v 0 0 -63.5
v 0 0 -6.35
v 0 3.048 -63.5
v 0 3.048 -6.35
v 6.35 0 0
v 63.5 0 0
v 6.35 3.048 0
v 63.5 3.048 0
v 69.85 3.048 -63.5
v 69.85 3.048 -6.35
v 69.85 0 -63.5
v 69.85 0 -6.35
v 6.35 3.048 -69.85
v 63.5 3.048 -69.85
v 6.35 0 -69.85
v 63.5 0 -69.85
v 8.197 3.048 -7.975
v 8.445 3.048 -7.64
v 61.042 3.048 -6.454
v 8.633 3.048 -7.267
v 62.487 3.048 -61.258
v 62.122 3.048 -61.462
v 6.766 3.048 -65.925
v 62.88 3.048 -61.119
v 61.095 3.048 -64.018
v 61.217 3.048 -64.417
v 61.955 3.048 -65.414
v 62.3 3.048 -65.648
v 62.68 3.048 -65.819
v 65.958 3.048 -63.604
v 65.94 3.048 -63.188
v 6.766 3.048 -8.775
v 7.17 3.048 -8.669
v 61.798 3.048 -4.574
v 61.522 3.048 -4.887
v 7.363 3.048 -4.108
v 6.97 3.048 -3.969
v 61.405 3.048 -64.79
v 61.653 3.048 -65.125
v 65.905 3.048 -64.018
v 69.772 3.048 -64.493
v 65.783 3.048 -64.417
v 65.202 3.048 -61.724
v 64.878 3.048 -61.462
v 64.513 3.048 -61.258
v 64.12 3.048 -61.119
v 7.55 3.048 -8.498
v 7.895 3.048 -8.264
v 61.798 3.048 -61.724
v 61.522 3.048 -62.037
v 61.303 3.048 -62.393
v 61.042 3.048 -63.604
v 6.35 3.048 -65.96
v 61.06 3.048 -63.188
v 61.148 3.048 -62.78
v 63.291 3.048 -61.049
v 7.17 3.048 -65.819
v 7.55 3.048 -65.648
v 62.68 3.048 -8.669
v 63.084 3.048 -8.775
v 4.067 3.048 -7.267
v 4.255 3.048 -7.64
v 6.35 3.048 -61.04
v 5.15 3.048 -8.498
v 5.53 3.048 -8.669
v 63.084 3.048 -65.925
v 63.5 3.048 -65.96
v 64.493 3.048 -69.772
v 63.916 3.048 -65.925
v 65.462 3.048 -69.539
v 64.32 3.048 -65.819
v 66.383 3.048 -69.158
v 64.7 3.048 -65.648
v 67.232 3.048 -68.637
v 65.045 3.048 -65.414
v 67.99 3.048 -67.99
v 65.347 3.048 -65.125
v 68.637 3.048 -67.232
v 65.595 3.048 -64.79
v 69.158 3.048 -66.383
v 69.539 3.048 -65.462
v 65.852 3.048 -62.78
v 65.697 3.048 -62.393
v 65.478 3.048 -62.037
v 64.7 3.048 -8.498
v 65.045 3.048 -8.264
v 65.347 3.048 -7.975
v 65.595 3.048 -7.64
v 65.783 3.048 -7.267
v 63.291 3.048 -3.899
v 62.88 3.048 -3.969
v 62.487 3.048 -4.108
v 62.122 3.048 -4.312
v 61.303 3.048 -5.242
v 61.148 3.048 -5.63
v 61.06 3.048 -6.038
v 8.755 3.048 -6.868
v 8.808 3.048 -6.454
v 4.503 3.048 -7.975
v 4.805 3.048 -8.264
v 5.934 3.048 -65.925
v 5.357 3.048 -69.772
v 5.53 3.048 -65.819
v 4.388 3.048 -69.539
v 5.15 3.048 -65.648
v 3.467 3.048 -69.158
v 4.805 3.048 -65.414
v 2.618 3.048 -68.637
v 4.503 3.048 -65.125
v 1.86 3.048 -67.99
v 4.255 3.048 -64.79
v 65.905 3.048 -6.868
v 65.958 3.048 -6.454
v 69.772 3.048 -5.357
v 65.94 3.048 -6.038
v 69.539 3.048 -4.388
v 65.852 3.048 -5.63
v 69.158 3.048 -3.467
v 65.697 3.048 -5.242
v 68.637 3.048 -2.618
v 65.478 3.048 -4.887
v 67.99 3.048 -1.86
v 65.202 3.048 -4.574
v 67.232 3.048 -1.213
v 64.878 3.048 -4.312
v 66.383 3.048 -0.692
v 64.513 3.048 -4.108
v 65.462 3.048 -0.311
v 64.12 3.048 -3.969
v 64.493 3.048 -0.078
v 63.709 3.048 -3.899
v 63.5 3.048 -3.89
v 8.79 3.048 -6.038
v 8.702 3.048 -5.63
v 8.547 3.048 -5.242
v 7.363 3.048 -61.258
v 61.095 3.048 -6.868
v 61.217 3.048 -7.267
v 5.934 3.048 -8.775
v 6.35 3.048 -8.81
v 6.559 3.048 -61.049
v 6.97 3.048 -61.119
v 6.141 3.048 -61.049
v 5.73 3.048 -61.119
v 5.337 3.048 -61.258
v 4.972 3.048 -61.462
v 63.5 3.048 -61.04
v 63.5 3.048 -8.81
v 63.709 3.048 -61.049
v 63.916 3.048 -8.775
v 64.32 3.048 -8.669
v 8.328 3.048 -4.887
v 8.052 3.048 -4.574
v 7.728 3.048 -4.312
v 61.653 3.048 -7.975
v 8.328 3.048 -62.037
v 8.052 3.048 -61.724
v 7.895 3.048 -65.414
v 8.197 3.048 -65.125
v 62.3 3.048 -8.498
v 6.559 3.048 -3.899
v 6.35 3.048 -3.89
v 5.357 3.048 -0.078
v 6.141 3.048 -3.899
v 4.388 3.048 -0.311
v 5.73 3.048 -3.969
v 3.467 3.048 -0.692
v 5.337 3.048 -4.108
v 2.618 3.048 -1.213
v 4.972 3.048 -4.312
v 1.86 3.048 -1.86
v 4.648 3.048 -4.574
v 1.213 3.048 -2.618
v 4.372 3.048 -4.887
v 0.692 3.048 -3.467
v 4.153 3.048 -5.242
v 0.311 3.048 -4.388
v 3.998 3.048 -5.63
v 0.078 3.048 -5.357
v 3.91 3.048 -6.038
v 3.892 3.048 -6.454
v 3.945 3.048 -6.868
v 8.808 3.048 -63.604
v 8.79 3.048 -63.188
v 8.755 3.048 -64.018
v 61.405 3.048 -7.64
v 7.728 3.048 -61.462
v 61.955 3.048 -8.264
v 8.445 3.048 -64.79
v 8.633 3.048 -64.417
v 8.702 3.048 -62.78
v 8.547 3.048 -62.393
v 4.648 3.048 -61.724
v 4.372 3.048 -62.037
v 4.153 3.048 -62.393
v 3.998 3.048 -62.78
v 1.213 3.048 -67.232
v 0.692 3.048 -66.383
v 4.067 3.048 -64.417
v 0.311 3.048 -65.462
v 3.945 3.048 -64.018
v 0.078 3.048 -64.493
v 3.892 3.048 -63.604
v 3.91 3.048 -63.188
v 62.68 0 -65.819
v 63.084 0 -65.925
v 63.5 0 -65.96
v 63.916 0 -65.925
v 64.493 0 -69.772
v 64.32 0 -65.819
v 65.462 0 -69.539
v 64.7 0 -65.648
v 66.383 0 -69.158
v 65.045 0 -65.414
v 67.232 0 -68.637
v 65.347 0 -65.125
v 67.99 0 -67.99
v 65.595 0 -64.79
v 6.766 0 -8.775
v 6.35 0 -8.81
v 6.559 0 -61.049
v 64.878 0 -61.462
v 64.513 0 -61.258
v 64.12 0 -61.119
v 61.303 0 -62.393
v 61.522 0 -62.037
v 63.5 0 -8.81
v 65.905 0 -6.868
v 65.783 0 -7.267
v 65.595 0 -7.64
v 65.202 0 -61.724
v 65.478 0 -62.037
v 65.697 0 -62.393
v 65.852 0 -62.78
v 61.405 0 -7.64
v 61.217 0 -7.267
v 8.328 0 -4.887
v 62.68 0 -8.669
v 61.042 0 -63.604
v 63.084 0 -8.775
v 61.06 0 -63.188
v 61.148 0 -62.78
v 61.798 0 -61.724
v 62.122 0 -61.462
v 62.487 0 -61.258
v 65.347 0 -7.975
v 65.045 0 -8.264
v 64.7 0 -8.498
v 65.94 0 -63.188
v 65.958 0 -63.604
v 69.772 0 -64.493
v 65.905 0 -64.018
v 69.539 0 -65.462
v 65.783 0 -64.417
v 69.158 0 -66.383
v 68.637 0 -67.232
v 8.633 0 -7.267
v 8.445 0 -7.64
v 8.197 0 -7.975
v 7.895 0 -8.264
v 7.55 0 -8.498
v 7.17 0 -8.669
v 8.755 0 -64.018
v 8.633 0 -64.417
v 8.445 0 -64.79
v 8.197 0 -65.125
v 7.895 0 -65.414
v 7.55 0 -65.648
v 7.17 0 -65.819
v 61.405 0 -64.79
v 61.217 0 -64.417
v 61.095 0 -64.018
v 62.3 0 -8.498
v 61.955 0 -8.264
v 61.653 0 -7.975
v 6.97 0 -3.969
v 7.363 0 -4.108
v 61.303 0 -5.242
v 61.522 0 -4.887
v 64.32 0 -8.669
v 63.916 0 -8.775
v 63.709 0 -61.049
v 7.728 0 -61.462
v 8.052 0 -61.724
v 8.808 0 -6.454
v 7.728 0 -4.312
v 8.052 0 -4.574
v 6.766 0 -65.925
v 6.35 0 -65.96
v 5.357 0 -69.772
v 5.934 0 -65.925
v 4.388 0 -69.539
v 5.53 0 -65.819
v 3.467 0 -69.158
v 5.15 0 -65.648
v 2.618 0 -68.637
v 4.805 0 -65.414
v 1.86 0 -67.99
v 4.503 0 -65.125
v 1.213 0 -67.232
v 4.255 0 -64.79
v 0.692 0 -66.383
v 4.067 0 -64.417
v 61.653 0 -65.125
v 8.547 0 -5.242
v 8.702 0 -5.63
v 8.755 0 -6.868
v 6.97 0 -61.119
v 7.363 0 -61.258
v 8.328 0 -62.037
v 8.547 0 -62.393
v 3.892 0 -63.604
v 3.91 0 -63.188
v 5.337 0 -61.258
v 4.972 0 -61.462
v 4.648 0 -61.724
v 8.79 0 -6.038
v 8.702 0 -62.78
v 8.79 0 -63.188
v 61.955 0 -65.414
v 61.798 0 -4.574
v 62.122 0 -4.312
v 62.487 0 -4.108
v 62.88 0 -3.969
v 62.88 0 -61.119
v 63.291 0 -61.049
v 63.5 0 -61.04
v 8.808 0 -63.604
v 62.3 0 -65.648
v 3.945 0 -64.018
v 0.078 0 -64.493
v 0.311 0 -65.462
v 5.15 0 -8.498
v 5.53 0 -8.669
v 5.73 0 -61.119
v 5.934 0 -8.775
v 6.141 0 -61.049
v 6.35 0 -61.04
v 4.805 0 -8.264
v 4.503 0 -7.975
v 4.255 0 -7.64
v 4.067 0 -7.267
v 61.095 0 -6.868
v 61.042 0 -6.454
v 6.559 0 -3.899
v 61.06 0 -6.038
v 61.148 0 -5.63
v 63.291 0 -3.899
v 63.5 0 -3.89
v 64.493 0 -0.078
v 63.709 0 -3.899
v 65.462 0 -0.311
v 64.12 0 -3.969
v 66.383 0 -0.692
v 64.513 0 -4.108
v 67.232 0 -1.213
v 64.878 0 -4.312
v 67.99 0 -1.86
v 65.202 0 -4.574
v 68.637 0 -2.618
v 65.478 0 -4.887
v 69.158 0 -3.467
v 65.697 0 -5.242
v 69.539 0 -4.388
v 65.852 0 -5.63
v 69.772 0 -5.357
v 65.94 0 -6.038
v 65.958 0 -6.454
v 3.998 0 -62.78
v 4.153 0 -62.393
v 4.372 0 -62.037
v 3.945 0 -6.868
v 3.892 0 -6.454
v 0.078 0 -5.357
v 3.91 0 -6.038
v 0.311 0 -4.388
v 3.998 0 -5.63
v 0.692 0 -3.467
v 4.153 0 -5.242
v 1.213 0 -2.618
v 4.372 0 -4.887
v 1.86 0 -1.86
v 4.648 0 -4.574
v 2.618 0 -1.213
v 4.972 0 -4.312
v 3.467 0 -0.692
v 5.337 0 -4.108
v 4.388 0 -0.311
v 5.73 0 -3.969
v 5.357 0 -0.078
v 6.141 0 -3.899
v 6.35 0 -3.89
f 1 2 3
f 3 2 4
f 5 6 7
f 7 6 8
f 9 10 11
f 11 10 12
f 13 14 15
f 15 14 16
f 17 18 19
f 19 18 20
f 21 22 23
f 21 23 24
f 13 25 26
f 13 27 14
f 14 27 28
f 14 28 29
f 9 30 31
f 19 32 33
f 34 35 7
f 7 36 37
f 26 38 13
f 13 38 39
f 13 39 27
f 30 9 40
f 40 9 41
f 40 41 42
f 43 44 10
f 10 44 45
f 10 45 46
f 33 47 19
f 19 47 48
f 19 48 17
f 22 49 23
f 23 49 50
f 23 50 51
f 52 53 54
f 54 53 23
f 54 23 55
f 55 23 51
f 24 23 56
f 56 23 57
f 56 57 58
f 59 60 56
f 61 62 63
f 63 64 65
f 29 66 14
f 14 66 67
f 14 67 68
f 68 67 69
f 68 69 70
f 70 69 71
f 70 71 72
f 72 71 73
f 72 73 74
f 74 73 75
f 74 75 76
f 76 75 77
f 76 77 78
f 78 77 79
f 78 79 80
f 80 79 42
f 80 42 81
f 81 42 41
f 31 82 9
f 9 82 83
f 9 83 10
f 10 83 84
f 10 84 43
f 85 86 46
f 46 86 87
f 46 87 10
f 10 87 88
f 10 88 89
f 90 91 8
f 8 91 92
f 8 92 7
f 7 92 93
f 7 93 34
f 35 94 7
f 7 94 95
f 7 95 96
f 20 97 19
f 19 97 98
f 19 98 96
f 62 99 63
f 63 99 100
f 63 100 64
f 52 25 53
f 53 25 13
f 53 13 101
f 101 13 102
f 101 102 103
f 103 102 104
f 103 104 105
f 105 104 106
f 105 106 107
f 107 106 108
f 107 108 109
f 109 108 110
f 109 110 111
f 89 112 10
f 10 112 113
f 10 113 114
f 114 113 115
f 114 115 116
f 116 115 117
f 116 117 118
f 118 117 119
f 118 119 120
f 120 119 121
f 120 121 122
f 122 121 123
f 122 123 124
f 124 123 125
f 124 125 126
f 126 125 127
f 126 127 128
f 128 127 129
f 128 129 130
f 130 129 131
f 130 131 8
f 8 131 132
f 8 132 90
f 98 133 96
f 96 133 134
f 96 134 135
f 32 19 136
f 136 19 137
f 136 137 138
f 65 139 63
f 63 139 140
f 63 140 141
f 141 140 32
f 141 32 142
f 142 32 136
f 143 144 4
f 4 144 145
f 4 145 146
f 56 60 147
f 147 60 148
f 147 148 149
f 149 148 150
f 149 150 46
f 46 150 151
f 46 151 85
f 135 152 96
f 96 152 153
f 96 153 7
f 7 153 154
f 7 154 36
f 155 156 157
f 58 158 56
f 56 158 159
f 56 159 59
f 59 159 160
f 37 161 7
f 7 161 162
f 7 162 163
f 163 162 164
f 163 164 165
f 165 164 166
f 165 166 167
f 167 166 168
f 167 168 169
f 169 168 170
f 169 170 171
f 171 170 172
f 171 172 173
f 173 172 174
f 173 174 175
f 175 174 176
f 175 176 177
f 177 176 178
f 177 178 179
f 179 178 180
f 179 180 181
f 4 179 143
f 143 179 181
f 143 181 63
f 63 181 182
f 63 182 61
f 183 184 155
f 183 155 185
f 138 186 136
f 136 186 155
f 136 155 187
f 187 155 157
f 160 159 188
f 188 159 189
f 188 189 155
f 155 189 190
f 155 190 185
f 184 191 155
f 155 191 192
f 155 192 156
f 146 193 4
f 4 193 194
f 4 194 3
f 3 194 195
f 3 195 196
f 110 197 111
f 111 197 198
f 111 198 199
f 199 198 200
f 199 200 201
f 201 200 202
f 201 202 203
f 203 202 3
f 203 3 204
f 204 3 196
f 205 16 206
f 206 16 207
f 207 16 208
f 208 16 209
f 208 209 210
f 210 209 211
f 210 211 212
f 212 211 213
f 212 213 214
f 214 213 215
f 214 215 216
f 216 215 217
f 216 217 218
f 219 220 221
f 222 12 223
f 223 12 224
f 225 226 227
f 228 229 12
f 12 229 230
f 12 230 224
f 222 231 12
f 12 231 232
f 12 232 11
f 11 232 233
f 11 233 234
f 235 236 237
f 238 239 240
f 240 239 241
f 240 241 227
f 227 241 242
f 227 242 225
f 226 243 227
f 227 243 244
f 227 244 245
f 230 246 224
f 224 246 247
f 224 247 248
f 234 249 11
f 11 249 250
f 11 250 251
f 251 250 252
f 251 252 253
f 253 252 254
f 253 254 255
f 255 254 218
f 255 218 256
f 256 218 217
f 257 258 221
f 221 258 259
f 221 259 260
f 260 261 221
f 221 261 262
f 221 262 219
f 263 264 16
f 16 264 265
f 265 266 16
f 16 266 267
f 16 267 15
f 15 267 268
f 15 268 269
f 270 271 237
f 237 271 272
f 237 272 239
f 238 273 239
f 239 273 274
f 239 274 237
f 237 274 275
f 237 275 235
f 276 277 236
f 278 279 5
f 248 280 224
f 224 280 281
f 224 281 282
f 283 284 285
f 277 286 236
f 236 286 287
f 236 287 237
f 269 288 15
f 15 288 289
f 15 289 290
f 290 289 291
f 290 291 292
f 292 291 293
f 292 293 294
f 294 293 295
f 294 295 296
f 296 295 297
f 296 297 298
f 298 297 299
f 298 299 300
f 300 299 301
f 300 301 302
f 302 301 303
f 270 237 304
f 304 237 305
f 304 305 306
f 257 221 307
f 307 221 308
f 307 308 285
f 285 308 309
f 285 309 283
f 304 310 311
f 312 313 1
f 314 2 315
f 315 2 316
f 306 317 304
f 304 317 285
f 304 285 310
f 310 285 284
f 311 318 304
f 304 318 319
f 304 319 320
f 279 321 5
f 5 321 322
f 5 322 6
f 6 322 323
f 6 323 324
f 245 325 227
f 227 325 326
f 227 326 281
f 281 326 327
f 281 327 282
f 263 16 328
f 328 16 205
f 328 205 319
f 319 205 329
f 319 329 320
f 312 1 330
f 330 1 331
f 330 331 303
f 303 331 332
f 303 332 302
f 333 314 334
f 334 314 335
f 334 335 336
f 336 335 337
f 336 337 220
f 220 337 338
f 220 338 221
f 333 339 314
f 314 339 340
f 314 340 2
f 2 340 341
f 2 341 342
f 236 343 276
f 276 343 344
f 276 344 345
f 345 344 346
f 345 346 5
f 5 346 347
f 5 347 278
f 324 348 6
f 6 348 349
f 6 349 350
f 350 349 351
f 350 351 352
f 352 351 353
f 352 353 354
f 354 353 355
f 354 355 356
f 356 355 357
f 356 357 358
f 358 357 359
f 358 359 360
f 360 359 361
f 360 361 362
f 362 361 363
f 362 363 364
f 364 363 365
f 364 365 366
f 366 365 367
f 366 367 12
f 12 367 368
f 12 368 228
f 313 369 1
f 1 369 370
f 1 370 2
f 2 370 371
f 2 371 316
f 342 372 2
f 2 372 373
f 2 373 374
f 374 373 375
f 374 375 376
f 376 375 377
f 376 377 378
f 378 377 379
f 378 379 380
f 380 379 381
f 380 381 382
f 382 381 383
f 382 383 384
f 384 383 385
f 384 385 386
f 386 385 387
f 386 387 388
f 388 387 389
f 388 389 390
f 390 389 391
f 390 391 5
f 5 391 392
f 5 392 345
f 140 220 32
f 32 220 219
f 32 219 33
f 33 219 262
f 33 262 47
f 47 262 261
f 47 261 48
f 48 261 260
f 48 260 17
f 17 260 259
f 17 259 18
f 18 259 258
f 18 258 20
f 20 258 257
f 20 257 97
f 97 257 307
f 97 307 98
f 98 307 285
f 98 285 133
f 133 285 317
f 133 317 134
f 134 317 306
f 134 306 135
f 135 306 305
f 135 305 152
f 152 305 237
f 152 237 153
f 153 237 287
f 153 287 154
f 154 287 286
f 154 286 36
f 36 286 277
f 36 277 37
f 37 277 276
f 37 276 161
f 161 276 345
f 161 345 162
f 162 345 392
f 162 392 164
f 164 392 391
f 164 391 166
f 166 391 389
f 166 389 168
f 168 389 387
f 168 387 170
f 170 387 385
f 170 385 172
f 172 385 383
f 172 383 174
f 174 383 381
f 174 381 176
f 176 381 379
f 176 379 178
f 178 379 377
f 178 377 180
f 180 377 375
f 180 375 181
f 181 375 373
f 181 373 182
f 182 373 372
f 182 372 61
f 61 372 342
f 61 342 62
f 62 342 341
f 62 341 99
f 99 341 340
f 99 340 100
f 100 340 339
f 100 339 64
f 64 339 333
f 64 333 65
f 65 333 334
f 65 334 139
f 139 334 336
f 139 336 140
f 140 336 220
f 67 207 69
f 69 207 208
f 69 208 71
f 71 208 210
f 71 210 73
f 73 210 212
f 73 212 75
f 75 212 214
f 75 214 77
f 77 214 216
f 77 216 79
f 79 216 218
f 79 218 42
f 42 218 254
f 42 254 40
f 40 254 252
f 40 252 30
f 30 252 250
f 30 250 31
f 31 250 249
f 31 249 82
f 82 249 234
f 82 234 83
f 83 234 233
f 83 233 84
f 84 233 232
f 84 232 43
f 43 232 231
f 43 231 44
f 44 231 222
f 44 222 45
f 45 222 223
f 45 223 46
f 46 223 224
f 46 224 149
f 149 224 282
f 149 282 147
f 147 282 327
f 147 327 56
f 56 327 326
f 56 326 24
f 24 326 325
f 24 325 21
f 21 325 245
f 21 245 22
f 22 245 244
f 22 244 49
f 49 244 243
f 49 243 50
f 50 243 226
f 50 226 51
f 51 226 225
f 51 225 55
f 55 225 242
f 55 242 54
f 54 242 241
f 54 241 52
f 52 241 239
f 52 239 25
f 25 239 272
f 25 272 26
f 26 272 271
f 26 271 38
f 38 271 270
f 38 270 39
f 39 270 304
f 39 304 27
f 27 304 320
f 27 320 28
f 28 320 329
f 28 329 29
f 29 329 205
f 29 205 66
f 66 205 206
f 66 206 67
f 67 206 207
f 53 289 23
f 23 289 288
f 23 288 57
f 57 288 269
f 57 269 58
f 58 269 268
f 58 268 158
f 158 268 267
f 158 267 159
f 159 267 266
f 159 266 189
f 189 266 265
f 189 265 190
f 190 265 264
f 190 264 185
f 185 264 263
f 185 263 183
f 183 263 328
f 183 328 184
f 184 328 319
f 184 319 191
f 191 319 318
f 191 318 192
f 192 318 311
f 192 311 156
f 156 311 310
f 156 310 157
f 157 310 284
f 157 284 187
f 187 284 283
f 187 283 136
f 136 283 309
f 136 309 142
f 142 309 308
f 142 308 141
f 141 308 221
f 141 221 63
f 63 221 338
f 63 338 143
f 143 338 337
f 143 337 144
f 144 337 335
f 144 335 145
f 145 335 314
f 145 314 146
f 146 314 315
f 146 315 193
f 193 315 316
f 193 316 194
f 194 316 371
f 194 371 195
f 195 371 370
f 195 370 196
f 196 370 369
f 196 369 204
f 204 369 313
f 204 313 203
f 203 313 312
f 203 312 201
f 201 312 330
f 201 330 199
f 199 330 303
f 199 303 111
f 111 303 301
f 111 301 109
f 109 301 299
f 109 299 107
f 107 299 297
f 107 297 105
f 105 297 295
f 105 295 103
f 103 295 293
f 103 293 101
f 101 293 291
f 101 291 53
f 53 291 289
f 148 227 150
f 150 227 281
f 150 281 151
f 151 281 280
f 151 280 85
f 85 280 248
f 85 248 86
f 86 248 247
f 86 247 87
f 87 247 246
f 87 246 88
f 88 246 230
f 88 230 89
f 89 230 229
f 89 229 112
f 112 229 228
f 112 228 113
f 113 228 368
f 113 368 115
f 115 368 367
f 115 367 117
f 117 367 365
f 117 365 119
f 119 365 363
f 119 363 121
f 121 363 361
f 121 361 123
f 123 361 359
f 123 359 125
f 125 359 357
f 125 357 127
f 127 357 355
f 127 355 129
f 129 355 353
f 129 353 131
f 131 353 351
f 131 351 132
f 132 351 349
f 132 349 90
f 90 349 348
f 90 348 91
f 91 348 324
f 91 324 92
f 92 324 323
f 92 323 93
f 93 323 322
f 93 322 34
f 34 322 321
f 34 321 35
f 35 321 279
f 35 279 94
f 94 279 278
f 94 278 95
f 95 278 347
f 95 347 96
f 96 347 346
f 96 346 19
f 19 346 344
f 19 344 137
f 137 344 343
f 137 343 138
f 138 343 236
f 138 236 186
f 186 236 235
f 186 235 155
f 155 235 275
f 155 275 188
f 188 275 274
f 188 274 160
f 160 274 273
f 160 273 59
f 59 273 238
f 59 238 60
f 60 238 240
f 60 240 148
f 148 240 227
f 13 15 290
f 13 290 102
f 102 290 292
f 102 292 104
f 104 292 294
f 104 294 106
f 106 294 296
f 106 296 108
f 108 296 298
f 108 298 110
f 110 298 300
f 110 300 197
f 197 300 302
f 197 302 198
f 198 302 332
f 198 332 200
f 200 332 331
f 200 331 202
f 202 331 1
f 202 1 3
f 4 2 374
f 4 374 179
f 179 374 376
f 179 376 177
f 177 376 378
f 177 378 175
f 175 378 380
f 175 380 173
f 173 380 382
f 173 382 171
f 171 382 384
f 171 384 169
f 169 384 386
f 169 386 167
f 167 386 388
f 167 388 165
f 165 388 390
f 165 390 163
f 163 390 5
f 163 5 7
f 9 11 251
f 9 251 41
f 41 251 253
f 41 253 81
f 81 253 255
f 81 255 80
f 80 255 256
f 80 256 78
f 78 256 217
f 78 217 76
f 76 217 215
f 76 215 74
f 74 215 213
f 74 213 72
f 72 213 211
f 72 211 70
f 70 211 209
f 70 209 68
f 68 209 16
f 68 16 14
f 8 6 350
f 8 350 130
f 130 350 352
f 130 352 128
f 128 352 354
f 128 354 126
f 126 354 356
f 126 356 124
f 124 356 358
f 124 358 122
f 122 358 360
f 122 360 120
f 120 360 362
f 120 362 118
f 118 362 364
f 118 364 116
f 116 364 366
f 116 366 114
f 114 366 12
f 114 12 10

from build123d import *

# Parameters (mm, degrees)
SKETCH1_W           = 69.85
SKETCH1_H           = 69.85
BOSS_EXTRUDE1_DEPTH = 3.048
SKETCH2_R           = 2.45999
CUT_EXTRUDE1_DEPTH  = 99.829830031
FILLET2_R           = 6.35


with BuildPart() as part:
    # Sketch1 → Boss-Extrude1 (new body)
    with BuildSketch(Plane(origin=(0, 0, 0), x_dir=(1, 0, 0), z_dir=(0, 1, 0))):
        with Locations((34.925, 34.925)):
            Rectangle(SKETCH1_W, SKETCH1_H)
    extrude(amount=BOSS_EXTRUDE1_DEPTH)

    # Sketch2 → Cut-Extrude1 (cut, through all)
    with BuildSketch(Plane(origin=(0, 0, 0), x_dir=(1, 0, 0), z_dir=(0, 1, 0))):
        with Locations(Location((6.35, 6.35, 0), (0, 0, 90))):
            Circle(SKETCH2_R)
        with Locations(Location((63.5, 6.35, 0), (0, 0, 90))):
            Circle(SKETCH2_R)
        with Locations(Location((6.35, 63.5, 0), (0, 0, 90))):
            Circle(SKETCH2_R)
        with Locations(Location((63.5, 63.5, 0), (0, 0, 90))):
            Circle(SKETCH2_R)
    extrude(amount=CUT_EXTRUDE1_DEPTH, mode=Mode.SUBTRACT)

    # Fillet2
    fillet2_edges = [part.edges().sort_by_distance(p)[0] for p in [
        (0, 1.524, -69.85),
        (69.85, 1.524, -69.85),
        (69.85, 1.524, 0),
        (0, 1.524, 0),
    ]]
    fillet(fillet2_edges, radius=FILLET2_R)


solid = part.part
